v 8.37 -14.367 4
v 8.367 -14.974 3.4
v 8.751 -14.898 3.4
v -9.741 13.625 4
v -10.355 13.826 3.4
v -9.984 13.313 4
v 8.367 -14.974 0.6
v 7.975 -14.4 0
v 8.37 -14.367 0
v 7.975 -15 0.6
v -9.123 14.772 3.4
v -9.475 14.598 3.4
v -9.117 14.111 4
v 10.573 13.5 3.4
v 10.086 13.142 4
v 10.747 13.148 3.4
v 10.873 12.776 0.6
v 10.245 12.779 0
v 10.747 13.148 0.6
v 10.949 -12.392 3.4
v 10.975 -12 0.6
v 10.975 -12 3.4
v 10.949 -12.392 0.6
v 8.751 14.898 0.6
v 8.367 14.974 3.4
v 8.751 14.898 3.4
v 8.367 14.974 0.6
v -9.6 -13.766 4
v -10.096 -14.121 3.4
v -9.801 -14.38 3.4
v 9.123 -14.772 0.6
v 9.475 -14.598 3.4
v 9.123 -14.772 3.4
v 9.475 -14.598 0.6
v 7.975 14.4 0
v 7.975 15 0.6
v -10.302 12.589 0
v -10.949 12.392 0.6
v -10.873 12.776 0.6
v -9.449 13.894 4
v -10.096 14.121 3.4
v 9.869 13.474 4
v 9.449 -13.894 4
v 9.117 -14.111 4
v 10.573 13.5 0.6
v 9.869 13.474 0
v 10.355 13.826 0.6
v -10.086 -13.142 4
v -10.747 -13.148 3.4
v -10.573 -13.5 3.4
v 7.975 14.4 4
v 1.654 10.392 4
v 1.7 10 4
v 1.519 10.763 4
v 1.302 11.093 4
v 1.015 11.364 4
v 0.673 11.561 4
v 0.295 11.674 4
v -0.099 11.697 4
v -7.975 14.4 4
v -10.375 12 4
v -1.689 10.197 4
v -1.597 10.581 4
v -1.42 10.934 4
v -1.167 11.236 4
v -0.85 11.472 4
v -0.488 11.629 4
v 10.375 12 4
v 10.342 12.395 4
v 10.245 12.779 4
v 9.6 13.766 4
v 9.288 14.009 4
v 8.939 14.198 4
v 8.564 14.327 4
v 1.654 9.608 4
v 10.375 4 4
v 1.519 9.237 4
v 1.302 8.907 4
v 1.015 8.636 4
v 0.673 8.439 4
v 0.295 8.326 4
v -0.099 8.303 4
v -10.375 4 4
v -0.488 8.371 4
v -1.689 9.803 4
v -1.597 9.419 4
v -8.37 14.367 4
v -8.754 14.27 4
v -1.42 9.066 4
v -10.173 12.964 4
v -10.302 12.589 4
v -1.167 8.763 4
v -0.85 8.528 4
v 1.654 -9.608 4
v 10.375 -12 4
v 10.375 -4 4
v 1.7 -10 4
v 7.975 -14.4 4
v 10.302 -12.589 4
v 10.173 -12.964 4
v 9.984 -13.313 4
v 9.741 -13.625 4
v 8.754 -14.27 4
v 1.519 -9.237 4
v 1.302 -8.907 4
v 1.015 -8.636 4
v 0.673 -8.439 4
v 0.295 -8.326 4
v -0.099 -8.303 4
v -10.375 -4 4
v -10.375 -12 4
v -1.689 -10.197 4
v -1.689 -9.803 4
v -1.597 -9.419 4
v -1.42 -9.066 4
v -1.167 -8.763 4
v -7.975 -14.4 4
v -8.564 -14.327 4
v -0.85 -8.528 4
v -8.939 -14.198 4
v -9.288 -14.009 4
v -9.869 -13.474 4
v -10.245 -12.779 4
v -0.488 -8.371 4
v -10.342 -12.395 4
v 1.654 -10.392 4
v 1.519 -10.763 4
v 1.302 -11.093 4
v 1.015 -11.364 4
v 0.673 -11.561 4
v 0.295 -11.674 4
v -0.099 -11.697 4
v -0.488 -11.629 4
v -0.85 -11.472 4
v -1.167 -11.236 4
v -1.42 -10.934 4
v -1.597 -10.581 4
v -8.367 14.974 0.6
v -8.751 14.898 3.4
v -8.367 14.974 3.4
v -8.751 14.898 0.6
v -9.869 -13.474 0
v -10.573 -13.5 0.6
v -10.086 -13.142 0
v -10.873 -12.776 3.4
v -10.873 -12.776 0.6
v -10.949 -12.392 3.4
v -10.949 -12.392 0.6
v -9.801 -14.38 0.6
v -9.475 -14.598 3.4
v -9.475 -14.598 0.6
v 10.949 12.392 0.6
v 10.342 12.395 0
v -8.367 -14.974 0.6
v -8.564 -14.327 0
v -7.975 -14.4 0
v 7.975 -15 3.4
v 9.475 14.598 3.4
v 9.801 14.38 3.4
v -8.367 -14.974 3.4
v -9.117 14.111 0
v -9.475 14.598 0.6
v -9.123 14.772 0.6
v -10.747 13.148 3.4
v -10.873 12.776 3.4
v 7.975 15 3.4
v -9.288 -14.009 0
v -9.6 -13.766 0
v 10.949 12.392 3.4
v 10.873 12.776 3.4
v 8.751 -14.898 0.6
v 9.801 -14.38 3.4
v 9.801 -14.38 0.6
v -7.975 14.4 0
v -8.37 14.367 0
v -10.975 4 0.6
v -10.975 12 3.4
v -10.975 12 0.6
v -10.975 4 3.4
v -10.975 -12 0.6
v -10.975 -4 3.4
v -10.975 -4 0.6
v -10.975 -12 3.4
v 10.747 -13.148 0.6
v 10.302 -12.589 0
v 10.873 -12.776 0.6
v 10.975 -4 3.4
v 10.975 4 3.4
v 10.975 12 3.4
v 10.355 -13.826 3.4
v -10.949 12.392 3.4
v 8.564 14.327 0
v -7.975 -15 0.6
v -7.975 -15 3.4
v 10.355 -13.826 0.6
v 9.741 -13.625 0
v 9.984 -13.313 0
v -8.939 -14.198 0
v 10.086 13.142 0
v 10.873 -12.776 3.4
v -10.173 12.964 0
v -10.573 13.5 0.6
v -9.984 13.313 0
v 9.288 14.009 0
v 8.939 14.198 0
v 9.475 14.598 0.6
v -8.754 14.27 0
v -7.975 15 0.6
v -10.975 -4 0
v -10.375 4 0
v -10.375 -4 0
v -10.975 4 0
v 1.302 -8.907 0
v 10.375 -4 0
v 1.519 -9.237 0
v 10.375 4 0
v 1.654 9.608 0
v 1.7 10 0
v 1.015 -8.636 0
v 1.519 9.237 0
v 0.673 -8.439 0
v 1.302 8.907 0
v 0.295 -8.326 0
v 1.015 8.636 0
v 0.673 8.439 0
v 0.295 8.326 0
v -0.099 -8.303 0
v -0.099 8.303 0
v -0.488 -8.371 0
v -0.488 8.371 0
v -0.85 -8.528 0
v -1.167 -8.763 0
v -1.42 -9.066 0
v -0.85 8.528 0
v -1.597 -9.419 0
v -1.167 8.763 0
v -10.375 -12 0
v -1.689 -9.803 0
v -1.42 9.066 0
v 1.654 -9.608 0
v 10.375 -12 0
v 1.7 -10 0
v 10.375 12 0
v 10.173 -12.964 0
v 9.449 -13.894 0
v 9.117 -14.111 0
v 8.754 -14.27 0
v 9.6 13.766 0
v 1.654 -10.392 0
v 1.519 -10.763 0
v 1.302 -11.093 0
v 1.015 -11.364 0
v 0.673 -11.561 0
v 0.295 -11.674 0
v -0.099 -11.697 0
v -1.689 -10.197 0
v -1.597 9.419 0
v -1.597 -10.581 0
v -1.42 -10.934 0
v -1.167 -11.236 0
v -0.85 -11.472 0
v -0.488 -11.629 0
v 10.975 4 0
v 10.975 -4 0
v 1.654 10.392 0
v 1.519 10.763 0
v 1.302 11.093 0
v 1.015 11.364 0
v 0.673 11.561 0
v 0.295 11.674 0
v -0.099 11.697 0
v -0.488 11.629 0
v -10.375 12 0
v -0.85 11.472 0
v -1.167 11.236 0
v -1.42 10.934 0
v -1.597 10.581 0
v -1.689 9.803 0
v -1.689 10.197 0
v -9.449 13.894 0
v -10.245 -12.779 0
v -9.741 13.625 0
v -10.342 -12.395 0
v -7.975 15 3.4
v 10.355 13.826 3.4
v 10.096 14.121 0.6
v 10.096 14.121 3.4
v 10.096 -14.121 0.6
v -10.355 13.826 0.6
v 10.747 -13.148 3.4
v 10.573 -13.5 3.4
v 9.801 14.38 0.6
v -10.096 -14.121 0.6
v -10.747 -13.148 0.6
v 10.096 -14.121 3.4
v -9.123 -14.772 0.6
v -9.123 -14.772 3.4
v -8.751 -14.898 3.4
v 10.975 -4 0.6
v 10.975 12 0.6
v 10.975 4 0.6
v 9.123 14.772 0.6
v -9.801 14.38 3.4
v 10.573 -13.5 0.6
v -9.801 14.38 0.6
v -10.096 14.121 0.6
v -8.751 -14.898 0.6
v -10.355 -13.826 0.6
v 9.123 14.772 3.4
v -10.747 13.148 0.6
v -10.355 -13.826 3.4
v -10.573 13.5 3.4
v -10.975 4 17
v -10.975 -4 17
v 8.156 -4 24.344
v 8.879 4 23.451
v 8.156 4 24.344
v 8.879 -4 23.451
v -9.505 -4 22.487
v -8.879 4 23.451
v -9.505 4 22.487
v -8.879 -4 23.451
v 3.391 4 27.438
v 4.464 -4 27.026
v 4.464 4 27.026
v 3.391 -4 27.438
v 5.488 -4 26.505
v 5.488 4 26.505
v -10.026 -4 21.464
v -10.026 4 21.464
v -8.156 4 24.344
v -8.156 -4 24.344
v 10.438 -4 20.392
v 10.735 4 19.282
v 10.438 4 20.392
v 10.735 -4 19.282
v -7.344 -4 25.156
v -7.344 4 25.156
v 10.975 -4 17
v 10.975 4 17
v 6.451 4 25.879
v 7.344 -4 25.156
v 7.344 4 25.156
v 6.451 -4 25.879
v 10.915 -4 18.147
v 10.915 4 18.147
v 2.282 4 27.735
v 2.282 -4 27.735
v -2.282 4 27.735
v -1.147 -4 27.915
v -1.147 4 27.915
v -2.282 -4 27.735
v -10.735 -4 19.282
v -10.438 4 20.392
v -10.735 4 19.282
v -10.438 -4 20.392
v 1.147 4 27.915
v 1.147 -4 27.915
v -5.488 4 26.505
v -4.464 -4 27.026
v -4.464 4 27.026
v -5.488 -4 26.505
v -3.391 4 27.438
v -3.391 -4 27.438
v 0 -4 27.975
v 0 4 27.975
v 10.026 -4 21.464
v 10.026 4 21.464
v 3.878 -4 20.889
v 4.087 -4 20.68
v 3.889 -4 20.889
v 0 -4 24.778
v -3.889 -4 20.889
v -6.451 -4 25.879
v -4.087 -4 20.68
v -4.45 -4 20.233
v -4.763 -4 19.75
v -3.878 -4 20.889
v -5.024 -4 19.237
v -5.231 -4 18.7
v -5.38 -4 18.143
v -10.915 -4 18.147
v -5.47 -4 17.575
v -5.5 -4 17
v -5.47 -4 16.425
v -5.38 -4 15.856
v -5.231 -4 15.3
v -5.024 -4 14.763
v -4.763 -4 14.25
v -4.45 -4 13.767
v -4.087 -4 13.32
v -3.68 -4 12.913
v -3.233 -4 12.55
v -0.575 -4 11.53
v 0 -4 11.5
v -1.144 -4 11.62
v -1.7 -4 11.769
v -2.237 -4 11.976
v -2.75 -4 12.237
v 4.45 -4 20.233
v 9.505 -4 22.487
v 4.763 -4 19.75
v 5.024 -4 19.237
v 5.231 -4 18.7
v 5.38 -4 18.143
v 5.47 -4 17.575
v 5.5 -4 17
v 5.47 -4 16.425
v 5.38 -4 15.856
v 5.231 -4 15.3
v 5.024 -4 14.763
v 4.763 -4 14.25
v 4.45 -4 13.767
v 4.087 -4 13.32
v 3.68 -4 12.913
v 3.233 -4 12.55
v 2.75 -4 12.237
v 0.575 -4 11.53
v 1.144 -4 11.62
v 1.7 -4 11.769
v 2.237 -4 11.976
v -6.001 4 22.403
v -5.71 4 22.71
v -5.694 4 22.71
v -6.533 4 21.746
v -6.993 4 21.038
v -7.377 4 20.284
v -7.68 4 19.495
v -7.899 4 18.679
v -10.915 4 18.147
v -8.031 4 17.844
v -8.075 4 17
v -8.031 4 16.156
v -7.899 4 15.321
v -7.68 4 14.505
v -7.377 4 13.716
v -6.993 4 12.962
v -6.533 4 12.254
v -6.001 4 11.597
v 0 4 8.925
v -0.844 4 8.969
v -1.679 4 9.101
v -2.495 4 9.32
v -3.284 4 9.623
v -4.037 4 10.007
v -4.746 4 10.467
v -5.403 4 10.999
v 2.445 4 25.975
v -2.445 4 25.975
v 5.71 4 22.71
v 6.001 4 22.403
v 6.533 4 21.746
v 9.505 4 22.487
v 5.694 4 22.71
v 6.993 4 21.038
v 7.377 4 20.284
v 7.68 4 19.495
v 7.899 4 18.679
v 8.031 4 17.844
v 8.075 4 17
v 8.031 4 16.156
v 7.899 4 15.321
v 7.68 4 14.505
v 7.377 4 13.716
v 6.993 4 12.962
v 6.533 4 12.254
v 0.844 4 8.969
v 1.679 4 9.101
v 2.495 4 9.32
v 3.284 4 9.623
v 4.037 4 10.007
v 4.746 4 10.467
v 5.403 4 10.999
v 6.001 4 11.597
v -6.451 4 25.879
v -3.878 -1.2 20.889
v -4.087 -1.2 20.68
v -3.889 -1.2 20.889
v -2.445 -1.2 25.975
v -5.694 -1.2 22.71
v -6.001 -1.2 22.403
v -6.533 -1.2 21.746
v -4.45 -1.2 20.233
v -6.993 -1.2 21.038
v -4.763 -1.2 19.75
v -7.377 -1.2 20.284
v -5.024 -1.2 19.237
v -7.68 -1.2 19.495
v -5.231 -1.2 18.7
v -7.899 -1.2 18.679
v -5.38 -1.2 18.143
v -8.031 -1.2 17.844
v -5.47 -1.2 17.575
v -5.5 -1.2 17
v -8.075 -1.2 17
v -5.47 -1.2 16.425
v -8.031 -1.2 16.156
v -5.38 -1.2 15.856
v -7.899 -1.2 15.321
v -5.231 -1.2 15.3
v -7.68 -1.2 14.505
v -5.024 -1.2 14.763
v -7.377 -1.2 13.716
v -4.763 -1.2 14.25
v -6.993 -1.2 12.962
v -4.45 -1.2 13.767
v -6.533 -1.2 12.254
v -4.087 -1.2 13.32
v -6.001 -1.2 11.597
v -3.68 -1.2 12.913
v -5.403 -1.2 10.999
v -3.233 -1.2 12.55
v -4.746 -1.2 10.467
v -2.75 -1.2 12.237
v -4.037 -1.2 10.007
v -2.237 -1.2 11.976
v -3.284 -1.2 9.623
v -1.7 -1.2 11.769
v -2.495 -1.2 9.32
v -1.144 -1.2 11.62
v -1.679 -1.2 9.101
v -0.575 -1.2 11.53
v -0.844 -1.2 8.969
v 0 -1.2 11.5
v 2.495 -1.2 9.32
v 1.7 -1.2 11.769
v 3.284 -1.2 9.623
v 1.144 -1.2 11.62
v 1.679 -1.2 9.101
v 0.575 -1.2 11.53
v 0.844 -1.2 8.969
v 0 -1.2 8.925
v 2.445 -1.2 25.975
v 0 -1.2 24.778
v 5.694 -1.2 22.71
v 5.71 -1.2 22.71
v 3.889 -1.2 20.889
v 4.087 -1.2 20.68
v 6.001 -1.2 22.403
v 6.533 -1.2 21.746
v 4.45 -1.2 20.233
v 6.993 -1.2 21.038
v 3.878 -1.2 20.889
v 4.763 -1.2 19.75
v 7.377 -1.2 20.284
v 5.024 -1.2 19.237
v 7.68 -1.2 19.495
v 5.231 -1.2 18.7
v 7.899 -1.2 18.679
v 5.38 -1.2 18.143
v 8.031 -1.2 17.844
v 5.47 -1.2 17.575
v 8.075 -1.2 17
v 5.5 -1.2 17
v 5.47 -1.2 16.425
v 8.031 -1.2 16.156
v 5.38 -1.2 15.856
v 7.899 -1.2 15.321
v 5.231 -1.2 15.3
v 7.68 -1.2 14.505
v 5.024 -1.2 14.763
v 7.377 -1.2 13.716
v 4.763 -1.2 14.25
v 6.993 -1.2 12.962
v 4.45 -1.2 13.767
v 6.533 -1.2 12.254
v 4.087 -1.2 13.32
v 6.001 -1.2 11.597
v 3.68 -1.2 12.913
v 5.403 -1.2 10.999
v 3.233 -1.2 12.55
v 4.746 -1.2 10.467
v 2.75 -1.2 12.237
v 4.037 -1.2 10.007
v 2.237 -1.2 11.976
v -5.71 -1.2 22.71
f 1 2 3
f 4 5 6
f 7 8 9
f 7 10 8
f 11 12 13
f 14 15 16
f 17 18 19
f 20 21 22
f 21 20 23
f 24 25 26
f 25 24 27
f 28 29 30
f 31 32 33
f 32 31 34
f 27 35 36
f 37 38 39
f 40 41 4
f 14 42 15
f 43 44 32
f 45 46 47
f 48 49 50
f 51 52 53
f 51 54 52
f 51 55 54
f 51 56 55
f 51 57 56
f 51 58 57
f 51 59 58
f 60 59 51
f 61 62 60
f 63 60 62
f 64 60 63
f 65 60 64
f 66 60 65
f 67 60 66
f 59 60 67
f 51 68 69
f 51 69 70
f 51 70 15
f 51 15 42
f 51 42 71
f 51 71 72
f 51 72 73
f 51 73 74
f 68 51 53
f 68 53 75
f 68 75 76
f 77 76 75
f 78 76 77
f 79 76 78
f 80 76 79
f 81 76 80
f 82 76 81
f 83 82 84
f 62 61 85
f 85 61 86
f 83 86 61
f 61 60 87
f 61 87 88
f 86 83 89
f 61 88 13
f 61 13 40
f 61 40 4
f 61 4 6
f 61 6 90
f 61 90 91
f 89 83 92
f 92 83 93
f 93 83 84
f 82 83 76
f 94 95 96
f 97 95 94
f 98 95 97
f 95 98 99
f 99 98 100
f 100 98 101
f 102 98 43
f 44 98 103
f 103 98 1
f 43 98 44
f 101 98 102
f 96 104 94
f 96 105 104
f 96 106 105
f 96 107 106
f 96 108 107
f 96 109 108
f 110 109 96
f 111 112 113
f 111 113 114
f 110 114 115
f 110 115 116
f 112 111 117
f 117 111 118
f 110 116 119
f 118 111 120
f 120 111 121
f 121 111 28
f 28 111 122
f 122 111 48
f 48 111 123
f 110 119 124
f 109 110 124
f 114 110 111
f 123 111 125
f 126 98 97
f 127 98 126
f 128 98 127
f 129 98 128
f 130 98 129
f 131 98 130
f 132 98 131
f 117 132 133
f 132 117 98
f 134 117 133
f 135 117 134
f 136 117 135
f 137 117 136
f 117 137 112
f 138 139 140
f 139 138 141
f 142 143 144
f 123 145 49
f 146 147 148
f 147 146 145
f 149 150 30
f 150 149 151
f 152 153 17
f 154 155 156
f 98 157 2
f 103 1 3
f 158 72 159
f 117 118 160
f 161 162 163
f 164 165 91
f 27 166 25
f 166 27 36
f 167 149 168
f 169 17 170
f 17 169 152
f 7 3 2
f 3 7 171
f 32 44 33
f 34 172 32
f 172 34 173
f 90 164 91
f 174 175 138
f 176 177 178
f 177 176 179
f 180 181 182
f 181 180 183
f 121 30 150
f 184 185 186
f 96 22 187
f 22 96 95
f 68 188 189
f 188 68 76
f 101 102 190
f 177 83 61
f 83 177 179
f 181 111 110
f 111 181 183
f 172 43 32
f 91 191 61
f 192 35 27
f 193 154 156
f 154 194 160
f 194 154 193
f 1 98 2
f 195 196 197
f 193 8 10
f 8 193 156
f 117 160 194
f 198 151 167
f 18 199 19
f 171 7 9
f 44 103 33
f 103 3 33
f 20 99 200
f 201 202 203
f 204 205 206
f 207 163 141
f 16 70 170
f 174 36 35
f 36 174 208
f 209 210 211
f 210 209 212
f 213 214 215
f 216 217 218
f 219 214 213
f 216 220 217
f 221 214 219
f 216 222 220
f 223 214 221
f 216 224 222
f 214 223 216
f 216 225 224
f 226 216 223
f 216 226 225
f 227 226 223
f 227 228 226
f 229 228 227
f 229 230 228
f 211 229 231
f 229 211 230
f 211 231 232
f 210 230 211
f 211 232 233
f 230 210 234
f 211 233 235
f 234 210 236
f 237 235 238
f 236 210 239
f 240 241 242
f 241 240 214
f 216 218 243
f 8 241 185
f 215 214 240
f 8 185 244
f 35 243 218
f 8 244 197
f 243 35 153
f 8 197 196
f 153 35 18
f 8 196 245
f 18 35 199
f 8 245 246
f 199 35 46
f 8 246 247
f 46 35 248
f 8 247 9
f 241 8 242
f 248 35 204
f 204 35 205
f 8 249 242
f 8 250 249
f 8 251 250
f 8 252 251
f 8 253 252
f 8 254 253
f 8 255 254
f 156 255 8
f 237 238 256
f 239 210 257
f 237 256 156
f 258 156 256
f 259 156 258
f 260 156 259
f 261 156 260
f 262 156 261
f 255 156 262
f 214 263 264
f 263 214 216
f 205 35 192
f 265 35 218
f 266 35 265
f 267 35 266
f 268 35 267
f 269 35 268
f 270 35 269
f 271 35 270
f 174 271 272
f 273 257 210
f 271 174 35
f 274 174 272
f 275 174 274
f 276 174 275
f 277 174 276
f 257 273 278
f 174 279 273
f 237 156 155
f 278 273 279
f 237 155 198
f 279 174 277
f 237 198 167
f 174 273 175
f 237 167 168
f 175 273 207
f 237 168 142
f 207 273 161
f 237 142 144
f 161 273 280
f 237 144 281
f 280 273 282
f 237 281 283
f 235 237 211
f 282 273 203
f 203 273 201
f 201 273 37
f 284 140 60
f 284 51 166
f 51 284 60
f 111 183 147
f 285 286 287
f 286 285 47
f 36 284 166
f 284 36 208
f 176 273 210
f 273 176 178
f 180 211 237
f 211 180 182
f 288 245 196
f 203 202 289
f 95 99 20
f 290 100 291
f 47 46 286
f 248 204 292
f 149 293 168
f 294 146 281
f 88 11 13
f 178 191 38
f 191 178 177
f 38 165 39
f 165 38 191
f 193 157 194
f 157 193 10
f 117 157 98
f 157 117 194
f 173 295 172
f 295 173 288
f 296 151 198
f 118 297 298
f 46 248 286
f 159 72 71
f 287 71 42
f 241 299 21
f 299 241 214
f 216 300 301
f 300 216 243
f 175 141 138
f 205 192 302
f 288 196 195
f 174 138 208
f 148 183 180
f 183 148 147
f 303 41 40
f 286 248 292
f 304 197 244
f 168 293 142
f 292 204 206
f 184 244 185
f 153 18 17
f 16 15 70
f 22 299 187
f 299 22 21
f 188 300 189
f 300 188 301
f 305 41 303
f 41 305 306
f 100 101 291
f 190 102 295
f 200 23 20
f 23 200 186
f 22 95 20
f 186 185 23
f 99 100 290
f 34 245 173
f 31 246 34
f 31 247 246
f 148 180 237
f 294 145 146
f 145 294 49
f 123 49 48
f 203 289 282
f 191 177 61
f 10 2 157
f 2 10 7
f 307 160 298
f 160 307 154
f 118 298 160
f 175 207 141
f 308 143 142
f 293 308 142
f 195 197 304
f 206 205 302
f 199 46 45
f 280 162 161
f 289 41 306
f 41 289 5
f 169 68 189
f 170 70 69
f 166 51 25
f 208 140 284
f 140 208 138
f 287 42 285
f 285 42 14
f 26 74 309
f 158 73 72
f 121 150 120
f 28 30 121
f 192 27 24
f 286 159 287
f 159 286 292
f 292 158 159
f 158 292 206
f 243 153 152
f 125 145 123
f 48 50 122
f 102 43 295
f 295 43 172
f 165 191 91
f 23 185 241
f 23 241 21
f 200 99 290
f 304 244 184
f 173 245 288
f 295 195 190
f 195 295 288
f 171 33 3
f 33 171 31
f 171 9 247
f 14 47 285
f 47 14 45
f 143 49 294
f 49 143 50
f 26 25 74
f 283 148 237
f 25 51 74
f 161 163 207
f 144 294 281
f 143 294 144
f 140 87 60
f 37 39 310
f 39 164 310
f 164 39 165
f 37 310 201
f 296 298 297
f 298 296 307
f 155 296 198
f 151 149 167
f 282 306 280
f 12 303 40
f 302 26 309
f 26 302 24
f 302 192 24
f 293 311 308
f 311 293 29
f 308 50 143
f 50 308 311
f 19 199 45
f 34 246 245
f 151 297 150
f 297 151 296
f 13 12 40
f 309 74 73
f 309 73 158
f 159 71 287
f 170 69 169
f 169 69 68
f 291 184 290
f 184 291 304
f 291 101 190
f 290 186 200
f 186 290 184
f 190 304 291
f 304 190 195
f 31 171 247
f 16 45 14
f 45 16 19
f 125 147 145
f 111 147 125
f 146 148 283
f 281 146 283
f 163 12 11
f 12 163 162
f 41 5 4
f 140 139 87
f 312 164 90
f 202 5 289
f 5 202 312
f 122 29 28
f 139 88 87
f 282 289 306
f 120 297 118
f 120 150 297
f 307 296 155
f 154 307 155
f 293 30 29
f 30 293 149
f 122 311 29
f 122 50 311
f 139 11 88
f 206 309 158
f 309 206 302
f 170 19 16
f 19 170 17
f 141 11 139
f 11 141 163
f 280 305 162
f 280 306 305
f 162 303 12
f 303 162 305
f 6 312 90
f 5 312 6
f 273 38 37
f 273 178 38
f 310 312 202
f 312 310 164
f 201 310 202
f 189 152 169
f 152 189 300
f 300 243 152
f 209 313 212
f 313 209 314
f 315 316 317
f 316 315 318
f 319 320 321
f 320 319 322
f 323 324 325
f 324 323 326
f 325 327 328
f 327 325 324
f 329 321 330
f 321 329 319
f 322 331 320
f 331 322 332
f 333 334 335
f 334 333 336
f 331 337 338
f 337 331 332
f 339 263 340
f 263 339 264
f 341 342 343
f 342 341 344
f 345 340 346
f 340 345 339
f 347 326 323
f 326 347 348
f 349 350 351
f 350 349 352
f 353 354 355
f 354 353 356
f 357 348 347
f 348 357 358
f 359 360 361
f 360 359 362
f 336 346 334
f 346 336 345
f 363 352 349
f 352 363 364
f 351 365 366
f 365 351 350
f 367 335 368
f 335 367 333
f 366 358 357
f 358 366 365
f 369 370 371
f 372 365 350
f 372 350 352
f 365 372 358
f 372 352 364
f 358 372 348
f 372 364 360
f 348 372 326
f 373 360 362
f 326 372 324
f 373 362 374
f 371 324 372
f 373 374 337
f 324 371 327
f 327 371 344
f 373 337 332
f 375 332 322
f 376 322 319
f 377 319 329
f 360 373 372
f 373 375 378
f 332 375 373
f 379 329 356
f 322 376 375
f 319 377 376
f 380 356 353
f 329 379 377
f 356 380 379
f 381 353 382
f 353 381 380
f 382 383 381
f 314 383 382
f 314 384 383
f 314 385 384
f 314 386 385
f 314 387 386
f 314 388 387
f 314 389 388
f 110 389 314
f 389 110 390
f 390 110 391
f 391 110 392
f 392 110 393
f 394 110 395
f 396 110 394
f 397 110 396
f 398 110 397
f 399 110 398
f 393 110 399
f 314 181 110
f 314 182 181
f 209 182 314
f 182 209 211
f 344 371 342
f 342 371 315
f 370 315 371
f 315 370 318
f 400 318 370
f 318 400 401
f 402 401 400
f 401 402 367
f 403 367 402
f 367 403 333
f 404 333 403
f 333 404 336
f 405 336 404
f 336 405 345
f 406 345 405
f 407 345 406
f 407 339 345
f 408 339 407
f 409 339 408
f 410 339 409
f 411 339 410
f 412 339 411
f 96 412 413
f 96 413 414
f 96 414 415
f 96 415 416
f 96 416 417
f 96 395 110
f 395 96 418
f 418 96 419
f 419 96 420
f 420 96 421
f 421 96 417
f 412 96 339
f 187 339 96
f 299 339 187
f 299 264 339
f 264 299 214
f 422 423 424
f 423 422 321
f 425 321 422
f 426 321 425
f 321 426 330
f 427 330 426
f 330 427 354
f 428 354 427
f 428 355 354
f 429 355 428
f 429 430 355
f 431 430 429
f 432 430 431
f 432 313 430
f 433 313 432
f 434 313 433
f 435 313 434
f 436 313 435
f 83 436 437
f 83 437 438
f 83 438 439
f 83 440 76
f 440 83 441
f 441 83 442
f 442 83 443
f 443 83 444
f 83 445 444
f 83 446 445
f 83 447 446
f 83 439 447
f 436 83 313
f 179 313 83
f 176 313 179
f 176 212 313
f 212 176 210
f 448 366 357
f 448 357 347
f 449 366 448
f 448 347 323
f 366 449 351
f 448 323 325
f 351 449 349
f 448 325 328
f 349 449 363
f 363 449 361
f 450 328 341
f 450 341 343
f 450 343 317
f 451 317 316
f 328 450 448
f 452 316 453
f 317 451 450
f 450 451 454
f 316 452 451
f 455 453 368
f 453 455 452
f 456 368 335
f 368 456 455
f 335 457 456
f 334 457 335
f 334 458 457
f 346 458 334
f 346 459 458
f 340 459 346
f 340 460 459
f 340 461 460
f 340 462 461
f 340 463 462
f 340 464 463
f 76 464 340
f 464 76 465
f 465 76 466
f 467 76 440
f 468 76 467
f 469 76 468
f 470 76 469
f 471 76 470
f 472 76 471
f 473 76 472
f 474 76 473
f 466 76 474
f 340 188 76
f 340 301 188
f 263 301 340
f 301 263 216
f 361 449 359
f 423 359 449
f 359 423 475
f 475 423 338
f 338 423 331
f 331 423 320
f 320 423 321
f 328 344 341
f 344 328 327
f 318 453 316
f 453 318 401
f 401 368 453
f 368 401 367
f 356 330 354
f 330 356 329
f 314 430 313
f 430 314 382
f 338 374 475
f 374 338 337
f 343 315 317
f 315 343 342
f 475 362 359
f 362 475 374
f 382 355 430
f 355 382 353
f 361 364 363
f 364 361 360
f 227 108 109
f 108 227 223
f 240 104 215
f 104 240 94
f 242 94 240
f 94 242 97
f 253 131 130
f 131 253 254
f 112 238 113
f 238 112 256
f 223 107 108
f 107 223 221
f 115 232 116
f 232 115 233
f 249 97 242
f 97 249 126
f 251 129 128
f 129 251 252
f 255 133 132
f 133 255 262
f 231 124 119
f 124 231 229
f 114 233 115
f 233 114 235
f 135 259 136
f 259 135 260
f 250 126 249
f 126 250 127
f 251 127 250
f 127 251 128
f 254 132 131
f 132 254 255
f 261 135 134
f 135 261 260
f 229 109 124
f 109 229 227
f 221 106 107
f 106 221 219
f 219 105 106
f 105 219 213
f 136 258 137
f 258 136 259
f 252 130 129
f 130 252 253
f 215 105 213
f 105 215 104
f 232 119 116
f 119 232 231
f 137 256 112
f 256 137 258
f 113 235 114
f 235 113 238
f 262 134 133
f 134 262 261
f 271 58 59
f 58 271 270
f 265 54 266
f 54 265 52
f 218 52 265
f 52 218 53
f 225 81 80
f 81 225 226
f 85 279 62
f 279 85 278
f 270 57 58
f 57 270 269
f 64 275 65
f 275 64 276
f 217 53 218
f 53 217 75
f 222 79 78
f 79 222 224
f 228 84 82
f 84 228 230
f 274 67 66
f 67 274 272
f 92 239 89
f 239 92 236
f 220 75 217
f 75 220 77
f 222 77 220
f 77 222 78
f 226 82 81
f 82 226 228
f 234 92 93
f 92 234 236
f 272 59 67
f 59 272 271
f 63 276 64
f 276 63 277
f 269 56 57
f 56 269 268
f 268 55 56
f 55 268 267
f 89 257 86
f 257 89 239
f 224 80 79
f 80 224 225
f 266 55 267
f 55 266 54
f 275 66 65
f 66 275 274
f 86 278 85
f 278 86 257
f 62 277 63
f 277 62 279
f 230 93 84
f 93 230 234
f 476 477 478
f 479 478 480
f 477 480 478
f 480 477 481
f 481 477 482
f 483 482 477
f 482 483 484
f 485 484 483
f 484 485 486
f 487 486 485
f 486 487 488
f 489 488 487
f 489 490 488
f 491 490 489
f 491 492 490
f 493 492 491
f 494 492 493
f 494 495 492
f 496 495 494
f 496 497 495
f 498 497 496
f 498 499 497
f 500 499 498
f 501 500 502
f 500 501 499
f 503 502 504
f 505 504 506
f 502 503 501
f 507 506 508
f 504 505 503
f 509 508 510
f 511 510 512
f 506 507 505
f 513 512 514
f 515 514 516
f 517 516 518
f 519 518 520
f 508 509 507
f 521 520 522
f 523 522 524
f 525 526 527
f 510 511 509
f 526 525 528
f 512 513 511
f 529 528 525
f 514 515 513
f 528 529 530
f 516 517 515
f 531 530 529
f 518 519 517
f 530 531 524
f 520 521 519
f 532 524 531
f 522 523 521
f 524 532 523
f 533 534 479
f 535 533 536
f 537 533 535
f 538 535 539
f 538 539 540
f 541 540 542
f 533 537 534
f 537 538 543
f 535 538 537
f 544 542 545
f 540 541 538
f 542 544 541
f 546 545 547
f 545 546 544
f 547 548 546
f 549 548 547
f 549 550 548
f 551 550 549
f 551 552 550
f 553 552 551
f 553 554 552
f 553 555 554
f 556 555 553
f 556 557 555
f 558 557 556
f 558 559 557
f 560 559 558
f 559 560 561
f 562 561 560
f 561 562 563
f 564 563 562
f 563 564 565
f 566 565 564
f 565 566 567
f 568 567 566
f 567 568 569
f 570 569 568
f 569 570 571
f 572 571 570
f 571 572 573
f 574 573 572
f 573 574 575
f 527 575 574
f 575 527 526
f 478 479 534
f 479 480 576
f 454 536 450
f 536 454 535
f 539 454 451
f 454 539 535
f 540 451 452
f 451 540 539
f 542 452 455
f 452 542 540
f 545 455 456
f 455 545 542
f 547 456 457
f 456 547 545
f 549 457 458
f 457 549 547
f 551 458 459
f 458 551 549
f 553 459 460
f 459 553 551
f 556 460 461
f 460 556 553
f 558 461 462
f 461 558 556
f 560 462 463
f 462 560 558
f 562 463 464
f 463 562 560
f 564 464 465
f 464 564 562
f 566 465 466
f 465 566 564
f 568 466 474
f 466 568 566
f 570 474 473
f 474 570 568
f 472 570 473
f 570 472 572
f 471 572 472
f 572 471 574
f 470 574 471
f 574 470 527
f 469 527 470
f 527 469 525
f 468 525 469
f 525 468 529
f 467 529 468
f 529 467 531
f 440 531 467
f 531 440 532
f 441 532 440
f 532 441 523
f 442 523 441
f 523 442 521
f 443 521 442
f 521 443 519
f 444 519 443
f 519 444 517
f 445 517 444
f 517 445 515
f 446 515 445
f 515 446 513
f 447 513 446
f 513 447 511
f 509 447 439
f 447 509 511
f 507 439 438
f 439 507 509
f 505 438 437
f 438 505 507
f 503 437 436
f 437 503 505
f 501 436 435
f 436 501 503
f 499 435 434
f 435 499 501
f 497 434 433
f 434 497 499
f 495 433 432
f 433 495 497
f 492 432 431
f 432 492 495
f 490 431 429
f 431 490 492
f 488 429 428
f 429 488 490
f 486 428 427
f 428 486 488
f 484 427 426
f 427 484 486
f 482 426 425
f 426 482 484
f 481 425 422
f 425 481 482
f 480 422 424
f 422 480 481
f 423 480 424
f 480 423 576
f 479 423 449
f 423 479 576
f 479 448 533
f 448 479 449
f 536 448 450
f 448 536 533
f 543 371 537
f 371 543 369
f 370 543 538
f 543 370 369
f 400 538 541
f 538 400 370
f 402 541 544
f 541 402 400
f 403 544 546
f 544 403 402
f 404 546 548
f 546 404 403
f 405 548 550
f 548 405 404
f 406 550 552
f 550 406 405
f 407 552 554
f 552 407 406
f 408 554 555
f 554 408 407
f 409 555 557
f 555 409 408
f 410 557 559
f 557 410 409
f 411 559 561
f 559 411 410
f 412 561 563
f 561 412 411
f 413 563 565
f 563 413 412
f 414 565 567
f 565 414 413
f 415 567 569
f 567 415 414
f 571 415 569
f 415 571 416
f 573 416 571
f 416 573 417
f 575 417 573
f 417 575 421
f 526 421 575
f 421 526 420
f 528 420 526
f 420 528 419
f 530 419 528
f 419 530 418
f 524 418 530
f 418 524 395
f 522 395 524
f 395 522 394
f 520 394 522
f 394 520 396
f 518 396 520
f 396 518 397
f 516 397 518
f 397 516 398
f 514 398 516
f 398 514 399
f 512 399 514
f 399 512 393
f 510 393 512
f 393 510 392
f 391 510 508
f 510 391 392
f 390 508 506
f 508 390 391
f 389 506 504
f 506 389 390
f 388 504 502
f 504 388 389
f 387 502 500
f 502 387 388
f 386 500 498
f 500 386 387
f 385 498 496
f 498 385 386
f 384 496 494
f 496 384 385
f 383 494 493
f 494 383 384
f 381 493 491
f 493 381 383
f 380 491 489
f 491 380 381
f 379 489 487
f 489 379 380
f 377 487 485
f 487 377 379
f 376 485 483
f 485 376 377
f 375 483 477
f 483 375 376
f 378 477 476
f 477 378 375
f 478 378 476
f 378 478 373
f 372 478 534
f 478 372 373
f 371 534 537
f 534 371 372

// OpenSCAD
// file: ../stem_core.scad
// =====================================================================
//  stem_core.scad — shared geometry helpers for every STEM_KIT part.
// =====================================================================
include <../PARAMETERS/config.scad>
// =====================================================================

// ---------- rounded / chamfered prisms --------------------------------

// Rounded rectangle (2D), centred.
module rrect(size, r) {
    rr = min(r, min(size[0], size[1]) / 2 - 0.01);
    offset(r = rr) square([size[0] - 2 * rr, size[1] - 2 * rr], center = true);
}

// Box with rounded vertical edges, chamfered bottom edge (elephant-foot
// relief) and rounded-ish (chamfered) top edge. Sits on z = 0, centred XY.
module rbox(size, r = 2, top = edge_r, bottom = chamfer) {
    h = size[2];
    hull() {
        linear_extrude(0.01) rrect([size[0] - 2 * bottom, size[1] - 2 * bottom], max(r - bottom, 0.1));
        translate([0, 0, bottom]) linear_extrude(h - bottom - top) rrect([size[0], size[1]], r);
        translate([0, 0, h - 0.01]) linear_extrude(0.01) rrect([size[0] - 2 * top, size[1] - 2 * top], max(r - top, 0.1));
    }
}

// Cylinder with chamfered/rounded top and bottom edges (safe hubs, knobs).
module rcyl(d, h, top = edge_r, bottom = chamfer) {
    rotate_extrude() polygon([
        [0, 0], [d / 2 - bottom, 0], [d / 2, bottom],
        [d / 2, h - top], [d / 2 - top, h], [0, h]
    ]);
}

// Stadium (slot / rounded bar) 2D between two points on the X axis.
module stadium2d(len, w) {
    hull() { circle(d = w); translate([len, 0]) circle(d = w); }
}

// ---------- holes ------------------------------------------------------

// Vertical through hole with small top/bottom chamfers.
module vhole(d = grid_hole_d, h = 50, ch = 0.4) {
    translate([0, 0, -h / 2]) cylinder(d = d, h = h);
}

// Horizontal hole along +Y, printable without supports (teardrop tip up).
module teardrop_y(d, len, center = true) {
    translate([0, center ? -len / 2 : 0, 0]) rotate([-90, 0, 0])
        linear_extrude(len) teardrop2d(d);
}
module teardrop_x(d, len, center = true) {
    translate([center ? -len / 2 : 0, 0, 0]) rotate([0, 90, 0]) rotate([0, 0, -90])
        linear_extrude(len) teardrop2d(d);
}
// 2D teardrop: circle + 45° roof pointing "up" in the final part (+Z).
// After rotate([-90,0,0]) local +Y becomes -Z, so the roof points to -Y here.
module teardrop2d(d) {
    r = d / 2;
    union() {
        circle(d = d);
        polygon([[-r * sqrt(2) / 2, -r * sqrt(2) / 2], [0, -r * sqrt(2)], [r * sqrt(2) / 2, -r * sqrt(2) / 2]]);
    }
}

// Hex nut pocket (flat sides parallel to X), opening at z = 0 going +Z.
module nut_pocket(depth = nut_pocket_depth, af = nut_pocket_af) {
    cylinder(d = af / cos(30), h = depth, $fn = 6);
}

// Side-entry nut slot: nut plane is XY, slot opens toward +dir (X).
// Centred on the screw axis (Z), slot height nut_slot_t, runs out `len`.
module nut_slot_x(len = 10, af = nut_pocket_af, t = nut_slot_t) {
    translate([0, 0, -t / 2]) hull() {
        cylinder(d = af / cos(30), h = t, $fn = 6);
        translate([len, 0, 0]) cylinder(d = af / cos(30), h = t, $fn = 6);
    }
}

// Counterbored clearance hole from top surface at height `top` downward.
module cbore(top, depth, d = counterbore_d) {
    translate([0, 0, top - depth]) cylinder(d = d, h = depth + 20);
    translate([0, 0, -20]) cylinder(d = grid_hole_d, h = top + 40);
}

// Grid of vertical holes: nx x ny, pitch grid_pitch, first hole centred
// at `origin` (XY). Used by every plate.
module grid_holes(nx, ny, origin = [0, 0], h = 100, d = grid_hole_d) {
    for (i = [0 : nx - 1], j = [0 : ny - 1])
        translate([origin[0] + i * grid_pitch, origin[1] + j * grid_pitch, 0]) vhole(d, h);
}

// Slot (for adjustable mounting) along X, length = travel.
module slot_x(travel, d = grid_hole_d, h = 100) {
    translate([-travel / 2, 0, -h / 2]) linear_extrude(h) stadium2d(travel, d);
}

// ---------- shaft bores ------------------------------------------------

// 2D bore profile: round, or D if shaft_flat > 0.
module bore2d(d) {
    if (shaft_flat > 0)
        intersection() { circle(d = d); translate([-d, -d / 2]) square([2 * d, d - shaft_flat + (d - shaft_diameter) / 2]); }
    else circle(d = d);
}

// Standard HUB: cylinder hub_d x hub_h standing on z = z0, with bore,
// radial M3 set screw at mid height and a captive-nut slot from the top.
// Call inside difference() for the cut-outs: hub_body()/hub_cuts().
module hub_body(z0, d = hub_d, h = hub_h) {
    translate([0, 0, z0]) rcyl(d, h, top = 0.8, bottom = 0);
}
module hub_cuts(z0, total_h, d = hub_d, h = hub_h, bore = shaft_fixed_bore, set_screw = true, screw_angle = 0) {
    // bore through everything
    translate([0, 0, -1]) linear_extrude(total_h + 2) bore2d(bore);
    // entry chamfer on bore
    translate([0, 0, total_h - 0.6]) cylinder(d1 = bore, d2 = bore + 1.2, h = 0.61);
    translate([0, 0, -0.01]) cylinder(d1 = bore + 1.2, d2 = bore, h = 0.6);
    if (set_screw) rotate([0, 0, screw_angle]) {
        zs = z0 + h / 2;
        // radial screw hole (teardrop, prints without support)
        translate([0, 0, zs]) teardrop_x(screw_clear_d, d, center = false);
        // captive nut slot, entered from the hub top face
        nr = bore / 2 + (d / 2 - bore / 2) / 2;       // radial position of nut
        translate([nr - nut_slot_t / 2, -nut_pocket_af / 2, zs - nut_pocket_af / cos(30) / 2 - 0.1])
            cube([nut_slot_t, nut_pocket_af, total_h + 10]);   // open to the hub top face
    }
}

// ---------- labels -----------------------------------------------------

// Engrave text into a top surface at height z (depth 0.6 = 3 layers).
module engrave(txt, size = 5, z = 0, depth = 0.6, halign = "center") {
    translate([0, 0, z - depth]) linear_extrude(depth + 1)
        text(txt, size = size, font = "Liberation Sans:style=Bold", halign = halign, valign = "center");
}

// ---------- misc -------------------------------------------------------

function grid_snap(v) = ceil(v / grid_pitch) * grid_pitch;
// file: ../../PARAMETERS/config.scad
// =====================================================================
//  STEM_KIT — CENTRAL PARAMETER FILE  ("ForgeGrid" mechanical standard)
// ---------------------------------------------------------------------
//  Every part in the library includes this file. Change a value here,
//  run `python3 tools/build.py`, and the whole library regenerates.
//  All dimensions in millimetres.
// =====================================================================

// ---------------------------------------------------------------------
// 1. PRINTER / PROCESS
// ---------------------------------------------------------------------
nozzle          = 0.4;
layer_height    = 0.2;
tolerance       = 0.2;    // sliding clearance per side (tune with STEM_TOLERANCE_TEST)
press_allow     = 0.05;   // extra for press fits (bores that should grip)
min_wall        = 1.6;    // never go below this
wall_thickness  = 2.4;    // preferred wall (6 perimeters @ 0.4)
edge_r          = 1.0;    // rounding of exposed edges (child safety)
chamfer         = 0.6;    // bottom-edge chamfer (elephant-foot relief)

$fa = 6;                  // facet angle
$fs = 0.4;                // facet size

// ---------------------------------------------------------------------
// 2. GRID  (the heart of the ecosystem)
// ---------------------------------------------------------------------
//  Holes sit on a 10 mm lattice, 5 mm in from every plate edge, so
//  plates placed side by side keep one continuous lattice.
grid_pitch            = 10;
plate_size            = 100;   // universal base plate (square)
plate_thickness       = 6;     // base plates, rails, chassis
foot_thickness        = 4;     // flange / foot of every mount
//  => standard joint: 4 mm foot + 6 mm plate = M3 x 10 screw, nut in
//     the hex pocket under the plate. One screw length does 90 % of joints.

// ---------------------------------------------------------------------
// 3. FASTENERS (M3 everywhere: one screwdriver, one nut)
// ---------------------------------------------------------------------
screw_size            = 3;
screw_clear_d         = 3.4;   // clearance hole (also the grid hole)
grid_hole_d           = screw_clear_d;
screw_tap_d           = 2.6;   // hole a screw self-taps into
screw_head_d          = 5.7;   // ISO 7380 BUTTON head = kit standard (low, rounded, child-safe)
screw_head_h          = 1.65;
counterbore_d         = 6.4;
nut_af                = 5.5;   // M3 nut across flats
nut_thick             = 2.4;
nut_pocket_af         = nut_af + 0.35;
nut_pocket_depth      = 3.0;   // pocket under plates (nut sits flush)
nut_slot_t            = nut_thick + 0.4;  // side-entry slot thickness
set_screw_len         = 6;     // M3 x 6 grub screw for hubs

// ---------------------------------------------------------------------
// 4. SHAFTS
// ---------------------------------------------------------------------
//  Default: 3 mm steel rod (silver steel / stainless). Printed shafts
//  are provided for light-duty use. Alternative systems: set
//  shaft_diameter = 4 or 5 and rebuild.
shaft_diameter        = 3;
shaft_flat            = 0;     // >0 : D-shaft, flat depth (e.g. 0.5)
shaft_fixed_bore      = shaft_diameter + 0.15;  // hub bore (set-screw locked)
shaft_free_bore       = shaft_diameter + 0.4;   // free-spinning bore / bushing
shaft_lengths         = [40, 60, 80, 100, 120];

//  Horizontal shafts: all pillow blocks, motor mounts and axle mounts
//  put their axis at this height above the surface they are bolted to,
//  so any two of them on the grid are automatically coaxial/parallel.
axis_height           = 17;
axis_height_high      = 37;    // = axis_height + 2 pitches (pulleys, big wheels)

// ---------------------------------------------------------------------
// 5. BEARINGS
// ---------------------------------------------------------------------
bearing_size          = [5, 16, 5];   // 625 : bore, OD, width (default housing)
bearing_small         = [3, 10, 4];   // 623 : fits 3 mm shafts via adapter ring
bearing_pocket_d      = bearing_size[1] + 0.15;

// ---------------------------------------------------------------------
// 6. GEARS
// ---------------------------------------------------------------------
//  Module 2 + tooth counts that are multiples of 10  =>  centre distance
//  = (z1+z2) mm is ALWAYS a multiple of 10  =>  ANY two gears mesh when
//  their shafts sit in grid holes. (3-4-5 diagonals also work: 50 mm.)
gear_module           = 2;
gear_pressure_angle   = 20;
gear_width            = 6;
gear_backlash         = 0.30;  // total circular backlash per mesh
gear_clearance_k      = 0.25;  // root clearance = k * module
gear_teeth_set        = [10, 20, 30, 40];
//  Gearbox frame: two frame plates, outer faces 60 mm apart (on grid),
//  48 mm gap = three gear levels (A, M, B).
frame_gap             = 48;
hub_d                 = 14;
hub_h                 = 7;

// ---------------------------------------------------------------------
// 7. WHEELS / PULLEYS
// ---------------------------------------------------------------------
wheel_diameter        = 60;
wheel_width           = 10;
axle_diameter         = shaft_diameter;
oring_cs              = 3.0;    // O-ring cross-section used as tyre / belt
belt_cs               = 2.5;    // O-ring / round-belt cord for pulleys
pulley_sizes          = [20, 40, 60];  // effective (belt-line) diameters

// ---------------------------------------------------------------------
// 8. MOTORS (130-size toy / solar motor is the default)
// ---------------------------------------------------------------------
motor_size            = [20.2, 15.2, 25.2]; // body dia, across-flats, length
motor_d               = motor_size[0];
motor_flat            = motor_size[1];
motor_len             = motor_size[2];
motor_boss_d          = 6.2;
motor_boss_h          = 1.6;
motor_shaft_d         = 2.0;
motor_shaft_len       = 8.5;   // beyond boss
motor_shaft_bore      = 1.9;   // press fit onto 2 mm motor shaft

// ---------------------------------------------------------------------
// 9. SOLAR PANEL (bought, not printed) — frame is parametric
// ---------------------------------------------------------------------
solar_panel_size      = [110, 69, 3.0];  // 5 V 1 W epoxy panel (common)
solar_panel_clear     = 0.6;

// ---------------------------------------------------------------------
// 10. ELECTRONICS
// ---------------------------------------------------------------------
mounting_hole_spacing = grid_pitch;   // everything bolts to the grid
electronics_slot_w    = screw_clear_d;
led_hole_d            = 5.1;
buzzer_hole_d         = 12.2;

// ---------------------------------------------------------------------
// 11. SAFETY LIMITS (checked by tools/qc.py)
// ---------------------------------------------------------------------
max_part_voltage      = 12;    // nothing in this kit uses more
min_rim_thickness     = 2.0;   // blades/links: no edge thinner than this
finger_gap_max        = 6;     // guard openings smaller than a child's finger
// main file
// =====================================================================
//  PART: bearing mount (pillow block) — COMMON/bearings
//  Holds one 625 bearing (5x16x5) — or, with an insert, a 623 bearing
//  or a printed plain bushing for 3 mm shafts — with its axis
//  `axis_height` above the surface, directly over a grid line.
//  Mounting: two M3 x 10 at (0, ±10), i.e. along the shaft direction (Y).
//  Print: standing on its foot. No supports (truncated teardrop pocket).
// =====================================================================
include <../../PARAMETERS/config.scad>
use <../stem_core.scad>

bearing_mount();

module bearing_mount(h = axis_height) {
    pw = bearing_pocket_d;              // pocket diameter
    bw = bearing_size[2];               // bearing width
    th = bw + 3;                        // upright thickness (Y)
    W  = pw + 2 * 2.9;                  // upright width (X)
    t  = foot_thickness;
    difference() {
        union() {
            // foot
            rbox([W, 3 * grid_pitch, t], r = 3, top = 0.6);
            // upright: rectangle up to axis + round top
            translate([0, th / 2, 0]) rotate([90, 0, 0]) linear_extrude(th)
                hull() {
                    translate([-W / 2, 0]) square([W, 1]);
                    translate([0, h]) circle(d = W);
                }
        }
        // bearing pocket from +Y face, truncated teardrop (roof prints)
        translate([0, th / 2 - bw - 0.2, h]) rotate([-90, 0, 0]) linear_extrude(bw + 1)
            trunc_teardrop(pw);
        // shaft / inner-race clearance through the back wall
        translate([0, 0, h]) teardrop_y(bearing_size[0] + 6, 30);
        // mounting holes
        for (y = [-grid_pitch, grid_pitch]) translate([0, y, 0]) vhole(grid_hole_d, 20);
    }
}

module trunc_teardrop(d) {
    r = d / 2;
    intersection() {
        union() {
            circle(d = d);
            polygon([[-r * sqrt(2) / 2, -r * sqrt(2) / 2], [0, -r * sqrt(2)], [r * sqrt(2) / 2, -r * sqrt(2) / 2]]);
        }
        translate([-d, -r - 0.9]) square([2 * d, d + 0.9 + d]);
    }
}
